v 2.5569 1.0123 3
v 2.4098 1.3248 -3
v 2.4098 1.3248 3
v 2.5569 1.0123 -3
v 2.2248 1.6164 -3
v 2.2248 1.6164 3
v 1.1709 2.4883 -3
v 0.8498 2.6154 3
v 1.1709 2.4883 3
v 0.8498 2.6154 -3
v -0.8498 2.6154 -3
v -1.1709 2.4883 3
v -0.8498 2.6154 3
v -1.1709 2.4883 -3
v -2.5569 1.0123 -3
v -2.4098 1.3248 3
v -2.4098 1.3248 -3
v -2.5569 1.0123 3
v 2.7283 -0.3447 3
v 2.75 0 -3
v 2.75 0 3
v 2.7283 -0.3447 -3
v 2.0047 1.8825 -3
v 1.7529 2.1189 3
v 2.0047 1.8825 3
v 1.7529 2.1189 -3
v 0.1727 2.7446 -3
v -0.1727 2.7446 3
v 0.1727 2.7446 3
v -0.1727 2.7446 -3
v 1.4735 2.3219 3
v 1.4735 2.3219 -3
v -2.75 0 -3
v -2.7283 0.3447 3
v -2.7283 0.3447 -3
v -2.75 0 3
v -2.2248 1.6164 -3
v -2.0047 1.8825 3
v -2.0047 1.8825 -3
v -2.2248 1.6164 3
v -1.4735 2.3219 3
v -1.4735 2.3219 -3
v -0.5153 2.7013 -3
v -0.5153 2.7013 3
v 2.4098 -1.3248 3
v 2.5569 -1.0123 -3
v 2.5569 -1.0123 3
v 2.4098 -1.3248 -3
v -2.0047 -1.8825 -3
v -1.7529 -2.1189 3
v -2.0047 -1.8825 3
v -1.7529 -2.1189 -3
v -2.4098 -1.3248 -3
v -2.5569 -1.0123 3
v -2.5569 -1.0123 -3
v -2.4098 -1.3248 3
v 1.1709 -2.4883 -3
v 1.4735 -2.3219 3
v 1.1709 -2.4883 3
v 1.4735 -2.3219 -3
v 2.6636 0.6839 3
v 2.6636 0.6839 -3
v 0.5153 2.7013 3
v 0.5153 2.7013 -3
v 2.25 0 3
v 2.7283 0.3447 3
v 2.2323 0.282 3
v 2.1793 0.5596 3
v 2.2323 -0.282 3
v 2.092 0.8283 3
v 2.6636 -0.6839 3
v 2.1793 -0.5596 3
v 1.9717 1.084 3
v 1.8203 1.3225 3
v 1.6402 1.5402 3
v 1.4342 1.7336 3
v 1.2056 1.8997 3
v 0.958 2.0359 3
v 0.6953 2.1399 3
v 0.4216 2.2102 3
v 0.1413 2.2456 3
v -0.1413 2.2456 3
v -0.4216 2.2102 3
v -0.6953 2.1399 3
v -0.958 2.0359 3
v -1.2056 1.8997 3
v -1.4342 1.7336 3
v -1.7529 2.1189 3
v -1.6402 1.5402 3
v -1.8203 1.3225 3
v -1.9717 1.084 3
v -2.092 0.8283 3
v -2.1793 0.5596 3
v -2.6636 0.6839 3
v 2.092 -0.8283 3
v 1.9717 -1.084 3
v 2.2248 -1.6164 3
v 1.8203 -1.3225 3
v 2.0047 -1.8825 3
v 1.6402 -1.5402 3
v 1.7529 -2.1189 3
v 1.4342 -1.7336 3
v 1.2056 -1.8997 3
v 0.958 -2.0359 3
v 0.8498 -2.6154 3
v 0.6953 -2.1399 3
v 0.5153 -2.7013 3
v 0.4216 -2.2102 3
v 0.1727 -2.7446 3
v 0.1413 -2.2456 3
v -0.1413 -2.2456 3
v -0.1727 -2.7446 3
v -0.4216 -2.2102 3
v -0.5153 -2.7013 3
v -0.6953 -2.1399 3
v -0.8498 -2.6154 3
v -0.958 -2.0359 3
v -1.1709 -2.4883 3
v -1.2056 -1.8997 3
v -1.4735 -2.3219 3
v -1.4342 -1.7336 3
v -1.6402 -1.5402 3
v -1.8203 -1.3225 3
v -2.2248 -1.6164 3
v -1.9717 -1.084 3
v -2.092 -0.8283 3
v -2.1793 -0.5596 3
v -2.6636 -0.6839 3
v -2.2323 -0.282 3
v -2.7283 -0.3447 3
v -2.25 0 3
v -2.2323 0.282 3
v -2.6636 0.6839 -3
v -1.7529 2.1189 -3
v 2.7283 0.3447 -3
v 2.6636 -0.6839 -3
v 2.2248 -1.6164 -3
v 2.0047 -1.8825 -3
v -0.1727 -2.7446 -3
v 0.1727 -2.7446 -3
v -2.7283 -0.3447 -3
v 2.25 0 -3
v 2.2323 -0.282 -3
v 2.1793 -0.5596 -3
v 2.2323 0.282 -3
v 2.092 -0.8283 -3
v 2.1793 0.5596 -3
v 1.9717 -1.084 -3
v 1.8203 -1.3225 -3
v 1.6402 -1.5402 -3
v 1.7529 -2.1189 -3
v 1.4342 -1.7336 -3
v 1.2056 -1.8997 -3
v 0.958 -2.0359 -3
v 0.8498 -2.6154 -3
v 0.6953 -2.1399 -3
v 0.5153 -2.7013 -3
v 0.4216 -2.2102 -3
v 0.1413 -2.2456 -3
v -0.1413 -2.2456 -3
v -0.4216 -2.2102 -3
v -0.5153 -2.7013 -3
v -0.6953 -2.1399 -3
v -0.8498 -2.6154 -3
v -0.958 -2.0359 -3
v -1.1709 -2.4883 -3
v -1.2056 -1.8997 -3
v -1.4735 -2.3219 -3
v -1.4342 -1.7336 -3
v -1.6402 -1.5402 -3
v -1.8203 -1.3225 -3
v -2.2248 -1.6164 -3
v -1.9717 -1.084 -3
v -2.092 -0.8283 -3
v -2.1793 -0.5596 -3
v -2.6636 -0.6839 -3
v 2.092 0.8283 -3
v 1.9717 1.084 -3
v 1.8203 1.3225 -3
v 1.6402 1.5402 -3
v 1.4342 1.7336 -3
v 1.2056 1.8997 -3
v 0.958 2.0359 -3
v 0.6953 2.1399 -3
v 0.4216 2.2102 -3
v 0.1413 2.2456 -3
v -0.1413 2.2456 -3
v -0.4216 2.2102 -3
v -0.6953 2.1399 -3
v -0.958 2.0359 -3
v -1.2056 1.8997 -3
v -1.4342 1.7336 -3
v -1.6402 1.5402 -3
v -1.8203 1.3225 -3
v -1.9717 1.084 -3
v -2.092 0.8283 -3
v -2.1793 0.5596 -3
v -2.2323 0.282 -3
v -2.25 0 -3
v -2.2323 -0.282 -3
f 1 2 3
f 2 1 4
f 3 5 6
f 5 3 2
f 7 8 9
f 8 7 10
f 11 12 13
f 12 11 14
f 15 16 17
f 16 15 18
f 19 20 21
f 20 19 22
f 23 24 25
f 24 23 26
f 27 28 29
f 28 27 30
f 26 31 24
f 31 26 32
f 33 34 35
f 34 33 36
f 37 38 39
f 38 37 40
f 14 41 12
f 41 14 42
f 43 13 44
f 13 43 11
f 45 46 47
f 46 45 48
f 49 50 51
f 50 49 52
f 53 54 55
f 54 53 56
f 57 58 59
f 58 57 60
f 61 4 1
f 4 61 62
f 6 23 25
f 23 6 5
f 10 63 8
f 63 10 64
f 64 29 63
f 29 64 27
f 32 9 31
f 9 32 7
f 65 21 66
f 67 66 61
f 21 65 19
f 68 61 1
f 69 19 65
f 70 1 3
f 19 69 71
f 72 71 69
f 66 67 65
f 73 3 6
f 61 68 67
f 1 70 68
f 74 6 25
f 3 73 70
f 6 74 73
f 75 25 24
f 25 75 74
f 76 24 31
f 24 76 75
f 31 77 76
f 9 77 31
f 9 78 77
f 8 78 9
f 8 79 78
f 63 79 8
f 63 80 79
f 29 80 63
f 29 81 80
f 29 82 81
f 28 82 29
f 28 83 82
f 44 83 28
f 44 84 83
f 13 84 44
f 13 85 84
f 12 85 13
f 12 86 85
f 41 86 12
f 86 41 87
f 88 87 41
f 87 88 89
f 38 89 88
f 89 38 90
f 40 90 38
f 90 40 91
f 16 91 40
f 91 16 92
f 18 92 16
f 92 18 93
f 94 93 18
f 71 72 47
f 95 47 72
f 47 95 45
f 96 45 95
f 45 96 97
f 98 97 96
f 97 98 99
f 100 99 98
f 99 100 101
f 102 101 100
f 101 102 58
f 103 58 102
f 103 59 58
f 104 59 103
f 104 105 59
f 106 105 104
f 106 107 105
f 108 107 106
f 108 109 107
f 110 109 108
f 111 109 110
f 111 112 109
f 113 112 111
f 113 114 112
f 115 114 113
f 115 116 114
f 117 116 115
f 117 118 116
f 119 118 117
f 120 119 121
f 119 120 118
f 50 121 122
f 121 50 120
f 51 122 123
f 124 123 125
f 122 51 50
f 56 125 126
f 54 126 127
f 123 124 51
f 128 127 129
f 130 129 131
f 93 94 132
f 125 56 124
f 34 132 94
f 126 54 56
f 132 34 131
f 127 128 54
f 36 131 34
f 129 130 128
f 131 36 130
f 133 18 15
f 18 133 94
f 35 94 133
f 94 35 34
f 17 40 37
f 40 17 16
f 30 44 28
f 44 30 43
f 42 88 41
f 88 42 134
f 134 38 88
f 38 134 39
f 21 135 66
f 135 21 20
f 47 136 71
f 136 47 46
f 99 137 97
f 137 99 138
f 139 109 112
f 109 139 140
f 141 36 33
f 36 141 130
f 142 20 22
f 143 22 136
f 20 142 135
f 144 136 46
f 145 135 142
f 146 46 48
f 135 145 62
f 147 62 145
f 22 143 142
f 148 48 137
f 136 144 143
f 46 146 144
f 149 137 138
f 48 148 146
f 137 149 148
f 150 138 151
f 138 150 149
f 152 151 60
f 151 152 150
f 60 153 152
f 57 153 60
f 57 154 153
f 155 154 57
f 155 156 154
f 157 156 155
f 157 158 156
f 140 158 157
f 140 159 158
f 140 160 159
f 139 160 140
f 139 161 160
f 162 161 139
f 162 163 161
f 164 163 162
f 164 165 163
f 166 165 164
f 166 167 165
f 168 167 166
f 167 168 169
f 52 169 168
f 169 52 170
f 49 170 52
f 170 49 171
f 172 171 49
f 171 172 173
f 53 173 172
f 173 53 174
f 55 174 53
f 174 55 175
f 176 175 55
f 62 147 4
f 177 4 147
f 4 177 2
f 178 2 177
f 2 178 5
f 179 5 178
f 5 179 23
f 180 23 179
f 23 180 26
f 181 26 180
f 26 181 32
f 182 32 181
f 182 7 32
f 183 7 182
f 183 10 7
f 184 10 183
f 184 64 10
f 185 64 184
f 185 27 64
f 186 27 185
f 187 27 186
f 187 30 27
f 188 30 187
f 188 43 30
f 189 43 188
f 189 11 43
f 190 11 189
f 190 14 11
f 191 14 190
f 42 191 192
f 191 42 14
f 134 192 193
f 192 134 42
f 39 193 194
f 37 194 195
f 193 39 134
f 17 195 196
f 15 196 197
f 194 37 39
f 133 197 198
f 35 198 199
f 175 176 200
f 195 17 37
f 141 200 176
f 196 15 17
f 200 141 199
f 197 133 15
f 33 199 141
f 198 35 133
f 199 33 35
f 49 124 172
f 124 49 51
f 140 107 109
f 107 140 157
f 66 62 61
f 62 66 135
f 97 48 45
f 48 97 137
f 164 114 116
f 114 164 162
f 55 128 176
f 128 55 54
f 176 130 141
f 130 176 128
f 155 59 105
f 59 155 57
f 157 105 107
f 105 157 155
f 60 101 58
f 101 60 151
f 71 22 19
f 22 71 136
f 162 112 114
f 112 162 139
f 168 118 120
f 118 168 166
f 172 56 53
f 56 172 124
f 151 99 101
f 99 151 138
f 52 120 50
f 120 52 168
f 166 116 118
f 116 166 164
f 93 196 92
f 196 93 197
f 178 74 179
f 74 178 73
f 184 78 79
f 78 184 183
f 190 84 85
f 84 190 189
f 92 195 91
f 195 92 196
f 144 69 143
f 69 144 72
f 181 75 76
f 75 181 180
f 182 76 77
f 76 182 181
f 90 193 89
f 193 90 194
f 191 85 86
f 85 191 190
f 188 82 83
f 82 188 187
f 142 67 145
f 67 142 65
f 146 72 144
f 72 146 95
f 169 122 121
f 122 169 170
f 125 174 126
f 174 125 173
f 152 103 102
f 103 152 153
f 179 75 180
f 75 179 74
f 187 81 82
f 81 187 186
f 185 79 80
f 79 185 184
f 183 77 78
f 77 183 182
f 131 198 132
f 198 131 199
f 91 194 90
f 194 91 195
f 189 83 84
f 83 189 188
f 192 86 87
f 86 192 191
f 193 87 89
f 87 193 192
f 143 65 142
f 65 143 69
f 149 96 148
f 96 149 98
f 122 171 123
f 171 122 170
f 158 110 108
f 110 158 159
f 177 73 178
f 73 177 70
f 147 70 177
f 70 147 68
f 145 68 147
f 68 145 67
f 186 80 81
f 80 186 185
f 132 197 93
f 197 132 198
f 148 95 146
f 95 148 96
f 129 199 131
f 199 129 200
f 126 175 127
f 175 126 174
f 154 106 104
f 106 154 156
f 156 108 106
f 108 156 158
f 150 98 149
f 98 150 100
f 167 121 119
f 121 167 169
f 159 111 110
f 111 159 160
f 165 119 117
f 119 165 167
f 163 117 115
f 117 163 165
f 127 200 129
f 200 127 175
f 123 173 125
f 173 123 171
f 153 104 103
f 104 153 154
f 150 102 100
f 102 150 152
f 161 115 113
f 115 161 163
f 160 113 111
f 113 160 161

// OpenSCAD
$fn = 50;


difference() {
	union() {
		translate(v = [0, 0, -3.0000000000]) {
			cylinder(h = 6, r = 2.7500000000);
		}
	}
	union() {
		translate(v = [0, 0, -100.0000000000]) {
			cylinder(h = 200, r = 2.2500000000);
		}
	}
}
